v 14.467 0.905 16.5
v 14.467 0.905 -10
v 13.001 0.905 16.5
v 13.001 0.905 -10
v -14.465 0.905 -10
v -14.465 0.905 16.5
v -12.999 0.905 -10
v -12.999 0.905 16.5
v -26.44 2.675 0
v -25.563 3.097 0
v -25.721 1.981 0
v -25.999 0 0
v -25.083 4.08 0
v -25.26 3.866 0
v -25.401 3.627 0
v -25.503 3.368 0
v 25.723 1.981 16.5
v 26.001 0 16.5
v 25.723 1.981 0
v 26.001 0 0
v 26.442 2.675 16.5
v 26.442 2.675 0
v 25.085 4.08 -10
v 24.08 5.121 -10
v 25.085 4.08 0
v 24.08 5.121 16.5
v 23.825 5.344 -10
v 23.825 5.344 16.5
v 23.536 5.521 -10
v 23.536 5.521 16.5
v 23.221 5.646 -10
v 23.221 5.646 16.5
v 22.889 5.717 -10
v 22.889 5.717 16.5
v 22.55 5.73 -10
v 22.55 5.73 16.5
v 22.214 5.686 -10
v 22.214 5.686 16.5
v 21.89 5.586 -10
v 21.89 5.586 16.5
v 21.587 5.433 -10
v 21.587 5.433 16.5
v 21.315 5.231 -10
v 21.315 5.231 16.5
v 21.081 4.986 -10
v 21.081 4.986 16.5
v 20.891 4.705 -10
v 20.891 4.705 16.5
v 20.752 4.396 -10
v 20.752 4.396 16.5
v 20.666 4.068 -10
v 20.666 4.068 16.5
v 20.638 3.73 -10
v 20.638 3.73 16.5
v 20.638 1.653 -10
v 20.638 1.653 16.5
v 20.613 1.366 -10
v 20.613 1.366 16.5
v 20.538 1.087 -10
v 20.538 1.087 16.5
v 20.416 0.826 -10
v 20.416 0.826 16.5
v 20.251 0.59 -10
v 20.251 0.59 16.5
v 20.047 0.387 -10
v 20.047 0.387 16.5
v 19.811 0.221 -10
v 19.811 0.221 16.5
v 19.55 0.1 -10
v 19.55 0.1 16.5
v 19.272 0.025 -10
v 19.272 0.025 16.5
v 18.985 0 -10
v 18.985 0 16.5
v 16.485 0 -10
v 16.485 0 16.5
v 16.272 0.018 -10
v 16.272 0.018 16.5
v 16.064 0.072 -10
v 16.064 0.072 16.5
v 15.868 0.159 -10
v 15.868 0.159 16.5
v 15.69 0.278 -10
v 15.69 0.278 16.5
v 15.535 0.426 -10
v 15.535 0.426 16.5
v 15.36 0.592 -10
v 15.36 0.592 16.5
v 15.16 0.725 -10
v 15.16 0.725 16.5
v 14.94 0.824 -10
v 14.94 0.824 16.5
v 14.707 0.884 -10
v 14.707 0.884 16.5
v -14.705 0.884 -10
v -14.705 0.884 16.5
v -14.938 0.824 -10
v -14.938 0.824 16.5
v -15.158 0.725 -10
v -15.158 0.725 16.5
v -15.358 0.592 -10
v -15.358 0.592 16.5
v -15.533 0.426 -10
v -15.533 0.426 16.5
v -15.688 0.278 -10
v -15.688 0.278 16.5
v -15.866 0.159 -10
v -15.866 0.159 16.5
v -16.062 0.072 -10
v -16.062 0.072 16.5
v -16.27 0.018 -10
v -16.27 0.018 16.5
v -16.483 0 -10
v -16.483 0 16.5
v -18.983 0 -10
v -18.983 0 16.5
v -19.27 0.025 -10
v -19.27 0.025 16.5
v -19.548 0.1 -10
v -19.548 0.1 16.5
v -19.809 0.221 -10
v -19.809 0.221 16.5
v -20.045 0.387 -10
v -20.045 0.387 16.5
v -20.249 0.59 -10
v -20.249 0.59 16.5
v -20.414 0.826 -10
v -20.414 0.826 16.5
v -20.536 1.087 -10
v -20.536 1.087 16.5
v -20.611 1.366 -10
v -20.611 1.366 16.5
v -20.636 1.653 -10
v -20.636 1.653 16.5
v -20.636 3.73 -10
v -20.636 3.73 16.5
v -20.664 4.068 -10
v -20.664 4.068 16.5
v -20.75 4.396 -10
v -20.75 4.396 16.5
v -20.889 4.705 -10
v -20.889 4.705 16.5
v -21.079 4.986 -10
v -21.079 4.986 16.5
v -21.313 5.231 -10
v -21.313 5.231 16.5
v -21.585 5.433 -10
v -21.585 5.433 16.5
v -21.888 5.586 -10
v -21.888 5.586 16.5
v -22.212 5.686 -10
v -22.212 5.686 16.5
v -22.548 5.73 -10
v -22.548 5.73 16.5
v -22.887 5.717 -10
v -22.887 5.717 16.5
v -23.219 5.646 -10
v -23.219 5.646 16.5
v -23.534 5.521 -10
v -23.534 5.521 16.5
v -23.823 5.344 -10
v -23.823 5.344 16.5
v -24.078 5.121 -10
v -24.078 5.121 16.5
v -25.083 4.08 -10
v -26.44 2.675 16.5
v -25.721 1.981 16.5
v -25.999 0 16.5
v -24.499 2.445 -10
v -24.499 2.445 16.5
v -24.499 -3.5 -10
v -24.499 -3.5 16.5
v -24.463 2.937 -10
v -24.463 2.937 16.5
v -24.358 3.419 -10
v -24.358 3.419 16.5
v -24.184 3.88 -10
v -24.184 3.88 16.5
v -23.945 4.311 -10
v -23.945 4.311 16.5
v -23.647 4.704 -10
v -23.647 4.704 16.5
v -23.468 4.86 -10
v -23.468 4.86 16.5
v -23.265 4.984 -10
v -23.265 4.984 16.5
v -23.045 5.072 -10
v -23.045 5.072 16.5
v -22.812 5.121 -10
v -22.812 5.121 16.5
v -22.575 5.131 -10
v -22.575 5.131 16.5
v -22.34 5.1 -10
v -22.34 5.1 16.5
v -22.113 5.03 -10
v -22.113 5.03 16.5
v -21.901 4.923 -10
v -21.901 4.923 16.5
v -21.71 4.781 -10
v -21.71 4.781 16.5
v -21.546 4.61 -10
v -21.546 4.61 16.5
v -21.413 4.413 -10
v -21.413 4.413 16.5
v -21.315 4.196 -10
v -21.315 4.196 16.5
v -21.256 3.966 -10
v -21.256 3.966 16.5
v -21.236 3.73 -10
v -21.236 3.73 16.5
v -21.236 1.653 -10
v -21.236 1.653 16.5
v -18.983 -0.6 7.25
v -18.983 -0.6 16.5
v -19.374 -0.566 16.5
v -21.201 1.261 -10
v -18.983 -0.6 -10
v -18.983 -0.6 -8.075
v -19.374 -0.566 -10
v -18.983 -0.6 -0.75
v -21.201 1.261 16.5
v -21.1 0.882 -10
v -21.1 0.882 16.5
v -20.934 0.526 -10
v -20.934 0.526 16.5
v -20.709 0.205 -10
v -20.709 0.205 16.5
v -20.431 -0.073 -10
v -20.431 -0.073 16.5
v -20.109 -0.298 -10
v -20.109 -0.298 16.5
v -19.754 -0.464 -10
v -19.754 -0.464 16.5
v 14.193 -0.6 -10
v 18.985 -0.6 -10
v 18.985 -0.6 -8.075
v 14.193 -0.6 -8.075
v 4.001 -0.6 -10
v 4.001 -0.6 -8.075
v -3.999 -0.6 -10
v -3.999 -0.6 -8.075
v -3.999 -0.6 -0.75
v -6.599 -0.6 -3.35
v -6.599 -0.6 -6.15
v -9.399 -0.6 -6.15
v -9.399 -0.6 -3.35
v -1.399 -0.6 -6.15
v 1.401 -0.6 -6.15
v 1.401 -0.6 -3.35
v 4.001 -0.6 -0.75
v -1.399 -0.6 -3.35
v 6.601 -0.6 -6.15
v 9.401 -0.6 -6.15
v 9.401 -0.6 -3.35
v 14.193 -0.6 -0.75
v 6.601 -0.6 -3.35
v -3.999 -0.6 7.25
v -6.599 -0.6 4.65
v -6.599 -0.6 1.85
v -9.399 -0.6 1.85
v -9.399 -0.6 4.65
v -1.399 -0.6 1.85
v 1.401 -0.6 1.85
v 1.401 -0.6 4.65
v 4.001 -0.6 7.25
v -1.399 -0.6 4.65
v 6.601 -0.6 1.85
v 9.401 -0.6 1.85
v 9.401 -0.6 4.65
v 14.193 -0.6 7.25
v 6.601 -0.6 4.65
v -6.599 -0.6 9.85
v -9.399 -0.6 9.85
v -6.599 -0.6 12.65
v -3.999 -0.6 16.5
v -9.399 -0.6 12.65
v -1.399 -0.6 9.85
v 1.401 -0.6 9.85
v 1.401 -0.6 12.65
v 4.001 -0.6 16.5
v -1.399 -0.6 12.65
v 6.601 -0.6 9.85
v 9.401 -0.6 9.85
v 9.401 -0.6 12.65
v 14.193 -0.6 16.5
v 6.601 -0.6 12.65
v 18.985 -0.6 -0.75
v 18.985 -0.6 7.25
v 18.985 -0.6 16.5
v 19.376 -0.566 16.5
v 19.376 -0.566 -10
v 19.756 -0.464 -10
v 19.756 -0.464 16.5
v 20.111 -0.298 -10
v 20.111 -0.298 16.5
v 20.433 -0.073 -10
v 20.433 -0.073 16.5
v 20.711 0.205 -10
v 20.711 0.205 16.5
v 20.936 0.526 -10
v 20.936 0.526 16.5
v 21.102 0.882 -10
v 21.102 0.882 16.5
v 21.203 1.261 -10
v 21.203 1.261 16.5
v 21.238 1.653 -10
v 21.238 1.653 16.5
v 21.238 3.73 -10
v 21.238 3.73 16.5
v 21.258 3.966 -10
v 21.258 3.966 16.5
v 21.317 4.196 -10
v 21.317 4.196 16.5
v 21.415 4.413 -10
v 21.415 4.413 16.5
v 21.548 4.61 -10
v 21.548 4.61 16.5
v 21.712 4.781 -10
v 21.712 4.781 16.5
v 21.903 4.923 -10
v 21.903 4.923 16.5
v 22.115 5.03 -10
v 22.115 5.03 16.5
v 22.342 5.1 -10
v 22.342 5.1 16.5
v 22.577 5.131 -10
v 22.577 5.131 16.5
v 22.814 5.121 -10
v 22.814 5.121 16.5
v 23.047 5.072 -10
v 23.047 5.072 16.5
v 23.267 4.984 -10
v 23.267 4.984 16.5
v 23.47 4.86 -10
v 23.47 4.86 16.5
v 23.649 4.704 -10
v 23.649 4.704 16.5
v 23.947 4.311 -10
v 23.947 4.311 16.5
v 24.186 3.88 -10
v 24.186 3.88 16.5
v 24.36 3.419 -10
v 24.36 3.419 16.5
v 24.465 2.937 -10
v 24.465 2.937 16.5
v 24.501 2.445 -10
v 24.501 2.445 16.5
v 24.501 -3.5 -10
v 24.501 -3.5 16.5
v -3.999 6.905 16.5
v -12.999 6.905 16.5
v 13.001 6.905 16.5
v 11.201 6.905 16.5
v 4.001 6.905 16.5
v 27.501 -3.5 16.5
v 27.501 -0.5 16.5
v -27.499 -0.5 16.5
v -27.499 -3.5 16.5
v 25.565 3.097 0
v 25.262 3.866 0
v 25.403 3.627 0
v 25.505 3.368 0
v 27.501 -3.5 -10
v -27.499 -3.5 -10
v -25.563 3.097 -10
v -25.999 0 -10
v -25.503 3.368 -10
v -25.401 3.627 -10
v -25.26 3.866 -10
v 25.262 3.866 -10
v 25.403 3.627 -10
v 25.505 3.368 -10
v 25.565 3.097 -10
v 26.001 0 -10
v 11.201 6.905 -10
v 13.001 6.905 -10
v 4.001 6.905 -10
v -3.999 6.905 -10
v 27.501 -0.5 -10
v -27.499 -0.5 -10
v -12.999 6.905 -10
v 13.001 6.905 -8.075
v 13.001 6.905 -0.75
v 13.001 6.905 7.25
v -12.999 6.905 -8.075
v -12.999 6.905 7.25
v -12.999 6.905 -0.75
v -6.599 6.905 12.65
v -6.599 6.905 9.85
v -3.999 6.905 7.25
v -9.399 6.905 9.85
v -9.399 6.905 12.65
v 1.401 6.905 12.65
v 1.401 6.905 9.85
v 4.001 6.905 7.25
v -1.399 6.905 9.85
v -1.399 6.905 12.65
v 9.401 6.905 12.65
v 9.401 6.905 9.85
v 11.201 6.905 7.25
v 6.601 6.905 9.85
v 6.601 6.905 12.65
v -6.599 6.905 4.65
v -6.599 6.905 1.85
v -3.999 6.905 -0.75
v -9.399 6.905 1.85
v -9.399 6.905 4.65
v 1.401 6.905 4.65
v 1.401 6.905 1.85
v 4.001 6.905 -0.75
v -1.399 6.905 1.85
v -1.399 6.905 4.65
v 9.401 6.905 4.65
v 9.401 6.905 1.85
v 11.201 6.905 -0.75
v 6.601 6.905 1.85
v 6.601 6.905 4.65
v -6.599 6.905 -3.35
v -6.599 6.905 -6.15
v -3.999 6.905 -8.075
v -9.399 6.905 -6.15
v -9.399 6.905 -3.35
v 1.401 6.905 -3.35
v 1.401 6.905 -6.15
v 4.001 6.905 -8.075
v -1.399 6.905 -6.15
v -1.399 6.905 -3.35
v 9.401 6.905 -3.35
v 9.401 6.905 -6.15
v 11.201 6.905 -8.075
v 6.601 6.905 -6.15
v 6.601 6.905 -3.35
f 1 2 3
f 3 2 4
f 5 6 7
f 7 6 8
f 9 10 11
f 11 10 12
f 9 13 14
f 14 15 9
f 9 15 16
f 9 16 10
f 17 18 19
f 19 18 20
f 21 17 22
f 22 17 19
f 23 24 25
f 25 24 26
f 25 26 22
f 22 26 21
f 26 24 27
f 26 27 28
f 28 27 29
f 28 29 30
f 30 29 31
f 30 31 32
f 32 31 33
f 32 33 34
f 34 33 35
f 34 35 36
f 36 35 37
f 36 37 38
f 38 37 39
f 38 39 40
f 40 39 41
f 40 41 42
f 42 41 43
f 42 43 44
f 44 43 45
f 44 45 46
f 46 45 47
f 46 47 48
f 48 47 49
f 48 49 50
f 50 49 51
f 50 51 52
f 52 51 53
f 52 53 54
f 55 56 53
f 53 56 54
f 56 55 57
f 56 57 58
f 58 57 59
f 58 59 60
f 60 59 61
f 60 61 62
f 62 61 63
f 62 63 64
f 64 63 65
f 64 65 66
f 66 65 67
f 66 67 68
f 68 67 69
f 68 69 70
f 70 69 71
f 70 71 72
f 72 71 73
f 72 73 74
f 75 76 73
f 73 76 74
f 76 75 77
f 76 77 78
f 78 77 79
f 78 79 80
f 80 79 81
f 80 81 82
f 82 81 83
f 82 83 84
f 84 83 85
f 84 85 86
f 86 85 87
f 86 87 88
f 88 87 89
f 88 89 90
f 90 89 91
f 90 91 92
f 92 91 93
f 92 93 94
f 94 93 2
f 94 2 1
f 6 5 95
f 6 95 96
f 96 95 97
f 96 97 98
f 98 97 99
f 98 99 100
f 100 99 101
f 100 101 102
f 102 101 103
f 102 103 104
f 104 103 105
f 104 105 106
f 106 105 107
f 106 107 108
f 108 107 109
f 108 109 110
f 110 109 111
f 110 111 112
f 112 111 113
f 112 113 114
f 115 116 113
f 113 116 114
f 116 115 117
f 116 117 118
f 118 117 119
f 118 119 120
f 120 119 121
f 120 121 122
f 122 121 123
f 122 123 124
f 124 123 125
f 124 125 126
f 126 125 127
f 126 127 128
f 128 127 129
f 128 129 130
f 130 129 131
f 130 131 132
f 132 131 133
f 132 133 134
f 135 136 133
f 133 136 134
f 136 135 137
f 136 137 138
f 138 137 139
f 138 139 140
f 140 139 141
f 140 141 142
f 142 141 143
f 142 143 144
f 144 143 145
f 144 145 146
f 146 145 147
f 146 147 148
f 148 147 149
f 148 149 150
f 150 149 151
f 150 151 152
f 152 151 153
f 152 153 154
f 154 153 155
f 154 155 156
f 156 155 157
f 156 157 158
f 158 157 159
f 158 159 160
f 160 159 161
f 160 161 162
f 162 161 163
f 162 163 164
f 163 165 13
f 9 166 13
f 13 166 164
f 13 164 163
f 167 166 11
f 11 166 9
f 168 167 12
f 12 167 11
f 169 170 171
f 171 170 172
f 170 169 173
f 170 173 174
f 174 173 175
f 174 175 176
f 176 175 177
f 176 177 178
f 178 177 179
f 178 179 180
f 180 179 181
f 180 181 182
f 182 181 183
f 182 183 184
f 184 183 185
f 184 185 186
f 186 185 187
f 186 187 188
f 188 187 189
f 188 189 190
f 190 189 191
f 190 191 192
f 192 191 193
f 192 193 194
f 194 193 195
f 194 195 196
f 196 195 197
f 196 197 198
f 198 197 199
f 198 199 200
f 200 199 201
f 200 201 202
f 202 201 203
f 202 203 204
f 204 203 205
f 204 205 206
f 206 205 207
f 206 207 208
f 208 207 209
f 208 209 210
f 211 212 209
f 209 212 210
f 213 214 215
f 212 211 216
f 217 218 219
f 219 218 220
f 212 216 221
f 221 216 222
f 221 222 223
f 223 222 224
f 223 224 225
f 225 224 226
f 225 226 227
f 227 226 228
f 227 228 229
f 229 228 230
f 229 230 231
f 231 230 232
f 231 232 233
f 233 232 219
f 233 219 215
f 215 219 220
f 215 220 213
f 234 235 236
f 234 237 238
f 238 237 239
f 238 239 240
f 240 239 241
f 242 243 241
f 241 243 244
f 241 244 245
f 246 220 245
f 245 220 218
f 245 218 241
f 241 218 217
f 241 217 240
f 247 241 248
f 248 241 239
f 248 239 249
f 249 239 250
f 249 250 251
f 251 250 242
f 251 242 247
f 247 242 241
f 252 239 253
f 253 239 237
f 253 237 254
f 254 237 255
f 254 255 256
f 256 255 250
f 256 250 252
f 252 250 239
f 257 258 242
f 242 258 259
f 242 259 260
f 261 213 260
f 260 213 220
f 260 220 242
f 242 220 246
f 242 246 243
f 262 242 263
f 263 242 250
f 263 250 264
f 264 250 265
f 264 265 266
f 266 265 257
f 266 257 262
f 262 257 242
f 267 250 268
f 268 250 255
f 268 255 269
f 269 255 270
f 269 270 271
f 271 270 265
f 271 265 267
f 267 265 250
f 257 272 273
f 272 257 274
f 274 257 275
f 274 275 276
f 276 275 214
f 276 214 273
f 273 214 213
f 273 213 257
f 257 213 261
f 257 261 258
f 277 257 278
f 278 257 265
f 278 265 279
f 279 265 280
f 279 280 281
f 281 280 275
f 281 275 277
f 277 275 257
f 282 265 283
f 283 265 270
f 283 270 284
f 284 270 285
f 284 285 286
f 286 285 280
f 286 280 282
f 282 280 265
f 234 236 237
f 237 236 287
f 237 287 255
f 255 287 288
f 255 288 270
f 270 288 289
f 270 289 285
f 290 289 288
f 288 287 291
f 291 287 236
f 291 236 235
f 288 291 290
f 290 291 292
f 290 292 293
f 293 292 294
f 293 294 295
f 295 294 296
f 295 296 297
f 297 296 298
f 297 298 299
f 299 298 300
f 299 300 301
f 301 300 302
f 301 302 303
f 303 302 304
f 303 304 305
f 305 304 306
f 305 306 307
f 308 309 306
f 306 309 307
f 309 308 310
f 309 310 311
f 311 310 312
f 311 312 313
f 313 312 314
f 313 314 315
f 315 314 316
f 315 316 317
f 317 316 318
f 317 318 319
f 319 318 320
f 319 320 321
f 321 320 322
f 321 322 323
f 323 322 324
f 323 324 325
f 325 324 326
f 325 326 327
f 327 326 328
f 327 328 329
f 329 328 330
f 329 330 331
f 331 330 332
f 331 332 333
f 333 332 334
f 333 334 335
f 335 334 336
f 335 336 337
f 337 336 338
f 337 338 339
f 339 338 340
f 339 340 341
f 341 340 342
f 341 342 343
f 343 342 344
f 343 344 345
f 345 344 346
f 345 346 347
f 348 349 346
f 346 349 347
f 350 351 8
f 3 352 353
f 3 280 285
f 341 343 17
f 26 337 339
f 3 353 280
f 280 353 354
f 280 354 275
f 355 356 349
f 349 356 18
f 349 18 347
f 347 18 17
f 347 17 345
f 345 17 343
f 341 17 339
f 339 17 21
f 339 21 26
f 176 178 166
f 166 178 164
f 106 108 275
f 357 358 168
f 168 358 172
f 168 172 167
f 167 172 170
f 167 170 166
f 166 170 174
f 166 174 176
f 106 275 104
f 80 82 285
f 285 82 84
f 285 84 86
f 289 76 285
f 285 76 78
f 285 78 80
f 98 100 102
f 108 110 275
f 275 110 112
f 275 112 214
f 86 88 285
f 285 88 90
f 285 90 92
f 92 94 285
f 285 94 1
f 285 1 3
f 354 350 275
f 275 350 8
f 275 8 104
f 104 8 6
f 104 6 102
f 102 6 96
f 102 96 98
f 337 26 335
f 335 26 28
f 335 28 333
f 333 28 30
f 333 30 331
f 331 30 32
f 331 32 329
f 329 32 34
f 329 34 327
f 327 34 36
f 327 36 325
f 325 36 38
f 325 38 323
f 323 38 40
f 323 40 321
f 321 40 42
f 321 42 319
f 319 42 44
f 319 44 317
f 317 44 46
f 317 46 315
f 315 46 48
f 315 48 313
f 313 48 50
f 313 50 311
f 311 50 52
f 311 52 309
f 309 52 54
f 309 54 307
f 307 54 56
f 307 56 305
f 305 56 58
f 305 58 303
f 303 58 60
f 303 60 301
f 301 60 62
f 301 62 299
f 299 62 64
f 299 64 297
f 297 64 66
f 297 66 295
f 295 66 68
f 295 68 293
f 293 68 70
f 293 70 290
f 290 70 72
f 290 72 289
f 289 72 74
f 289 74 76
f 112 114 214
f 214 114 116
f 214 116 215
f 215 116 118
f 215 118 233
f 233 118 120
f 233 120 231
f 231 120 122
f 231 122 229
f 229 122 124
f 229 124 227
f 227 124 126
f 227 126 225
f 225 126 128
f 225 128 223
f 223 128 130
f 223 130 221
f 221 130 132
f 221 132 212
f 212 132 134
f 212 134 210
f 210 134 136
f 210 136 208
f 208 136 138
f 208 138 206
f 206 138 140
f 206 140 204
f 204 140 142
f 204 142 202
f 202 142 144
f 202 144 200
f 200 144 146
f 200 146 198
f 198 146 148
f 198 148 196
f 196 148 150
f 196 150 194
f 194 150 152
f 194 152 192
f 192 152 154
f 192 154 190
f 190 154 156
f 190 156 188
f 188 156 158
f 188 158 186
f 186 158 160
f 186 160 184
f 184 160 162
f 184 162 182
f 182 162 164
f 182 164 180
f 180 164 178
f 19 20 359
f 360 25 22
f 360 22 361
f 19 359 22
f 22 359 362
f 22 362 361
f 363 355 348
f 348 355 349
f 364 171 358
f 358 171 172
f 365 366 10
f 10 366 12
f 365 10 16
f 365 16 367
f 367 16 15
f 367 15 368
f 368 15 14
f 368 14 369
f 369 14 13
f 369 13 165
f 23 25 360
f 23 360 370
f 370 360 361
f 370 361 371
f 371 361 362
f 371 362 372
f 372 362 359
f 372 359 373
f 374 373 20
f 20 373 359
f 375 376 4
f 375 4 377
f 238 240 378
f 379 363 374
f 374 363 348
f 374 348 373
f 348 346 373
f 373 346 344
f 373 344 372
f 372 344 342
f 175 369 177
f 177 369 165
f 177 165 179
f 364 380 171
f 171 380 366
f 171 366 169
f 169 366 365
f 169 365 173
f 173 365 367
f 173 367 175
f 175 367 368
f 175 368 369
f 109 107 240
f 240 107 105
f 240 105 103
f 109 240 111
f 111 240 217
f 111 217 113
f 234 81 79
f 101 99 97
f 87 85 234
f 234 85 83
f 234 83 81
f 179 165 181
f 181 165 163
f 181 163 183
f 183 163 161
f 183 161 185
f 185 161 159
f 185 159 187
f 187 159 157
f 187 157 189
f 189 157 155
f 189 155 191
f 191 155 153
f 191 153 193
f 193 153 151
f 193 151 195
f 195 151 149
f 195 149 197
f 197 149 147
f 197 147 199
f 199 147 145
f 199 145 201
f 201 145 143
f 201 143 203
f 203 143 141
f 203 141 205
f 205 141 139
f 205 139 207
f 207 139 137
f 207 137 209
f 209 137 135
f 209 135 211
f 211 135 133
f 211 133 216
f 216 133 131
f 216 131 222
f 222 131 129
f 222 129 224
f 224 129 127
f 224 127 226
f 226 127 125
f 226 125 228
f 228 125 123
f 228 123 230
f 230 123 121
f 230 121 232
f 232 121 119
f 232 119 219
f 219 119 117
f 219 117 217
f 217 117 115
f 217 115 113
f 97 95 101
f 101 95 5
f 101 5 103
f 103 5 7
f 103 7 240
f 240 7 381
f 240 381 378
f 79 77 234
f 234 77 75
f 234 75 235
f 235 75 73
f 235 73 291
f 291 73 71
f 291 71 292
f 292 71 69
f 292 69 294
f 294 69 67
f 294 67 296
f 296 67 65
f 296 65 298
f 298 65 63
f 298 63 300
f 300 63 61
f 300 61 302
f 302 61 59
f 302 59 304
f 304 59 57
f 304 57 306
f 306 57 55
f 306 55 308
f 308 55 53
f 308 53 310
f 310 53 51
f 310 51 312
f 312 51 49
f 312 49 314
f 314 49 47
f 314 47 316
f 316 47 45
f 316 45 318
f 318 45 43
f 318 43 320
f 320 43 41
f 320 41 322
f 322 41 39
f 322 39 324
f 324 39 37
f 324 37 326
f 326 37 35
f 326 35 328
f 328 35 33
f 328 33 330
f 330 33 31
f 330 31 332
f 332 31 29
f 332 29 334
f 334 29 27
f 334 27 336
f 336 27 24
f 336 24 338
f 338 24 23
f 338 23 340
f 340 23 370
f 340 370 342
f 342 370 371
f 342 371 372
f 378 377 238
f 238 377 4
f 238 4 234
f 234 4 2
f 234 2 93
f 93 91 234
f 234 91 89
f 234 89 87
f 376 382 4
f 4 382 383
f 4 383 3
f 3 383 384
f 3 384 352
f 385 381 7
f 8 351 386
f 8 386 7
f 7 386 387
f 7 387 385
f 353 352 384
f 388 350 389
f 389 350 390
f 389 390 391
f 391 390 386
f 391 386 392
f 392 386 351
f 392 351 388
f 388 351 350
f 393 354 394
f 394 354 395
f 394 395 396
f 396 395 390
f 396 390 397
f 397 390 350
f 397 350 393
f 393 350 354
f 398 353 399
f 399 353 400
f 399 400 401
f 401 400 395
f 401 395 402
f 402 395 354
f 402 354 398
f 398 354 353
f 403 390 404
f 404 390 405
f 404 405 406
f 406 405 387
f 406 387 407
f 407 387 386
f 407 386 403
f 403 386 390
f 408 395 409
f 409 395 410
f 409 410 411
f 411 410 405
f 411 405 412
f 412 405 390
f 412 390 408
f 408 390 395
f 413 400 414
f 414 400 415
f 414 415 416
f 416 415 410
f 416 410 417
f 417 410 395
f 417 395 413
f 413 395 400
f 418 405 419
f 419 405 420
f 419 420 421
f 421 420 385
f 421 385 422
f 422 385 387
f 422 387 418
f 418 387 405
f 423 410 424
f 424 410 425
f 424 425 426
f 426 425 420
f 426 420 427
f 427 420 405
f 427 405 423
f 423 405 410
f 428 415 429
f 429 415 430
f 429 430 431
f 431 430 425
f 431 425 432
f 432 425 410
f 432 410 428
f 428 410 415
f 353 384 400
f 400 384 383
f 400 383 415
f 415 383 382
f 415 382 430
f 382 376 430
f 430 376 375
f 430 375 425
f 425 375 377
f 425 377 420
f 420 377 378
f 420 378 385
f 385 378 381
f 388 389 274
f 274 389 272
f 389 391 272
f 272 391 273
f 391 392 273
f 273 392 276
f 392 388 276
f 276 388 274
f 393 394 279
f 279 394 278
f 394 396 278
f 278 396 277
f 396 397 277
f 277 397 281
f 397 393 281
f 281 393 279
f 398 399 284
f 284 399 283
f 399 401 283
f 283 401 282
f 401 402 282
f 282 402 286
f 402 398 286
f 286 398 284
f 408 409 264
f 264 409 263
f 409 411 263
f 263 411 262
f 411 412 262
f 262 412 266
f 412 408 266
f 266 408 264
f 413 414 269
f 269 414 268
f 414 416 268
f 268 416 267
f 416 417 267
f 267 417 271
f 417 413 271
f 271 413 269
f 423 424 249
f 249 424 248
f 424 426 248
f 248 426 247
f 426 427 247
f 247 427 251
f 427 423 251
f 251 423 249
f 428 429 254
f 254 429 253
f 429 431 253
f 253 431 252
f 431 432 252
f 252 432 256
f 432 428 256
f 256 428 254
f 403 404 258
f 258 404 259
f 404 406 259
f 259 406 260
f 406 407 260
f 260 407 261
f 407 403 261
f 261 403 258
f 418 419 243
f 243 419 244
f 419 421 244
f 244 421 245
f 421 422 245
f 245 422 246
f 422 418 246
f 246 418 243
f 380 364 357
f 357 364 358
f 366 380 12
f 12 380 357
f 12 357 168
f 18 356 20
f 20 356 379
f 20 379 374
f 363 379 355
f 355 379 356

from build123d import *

# Parameters (mm, degrees)
RESSALTO_EXTRUS_O1_DEPTH = 16.5
ESBO_O4_W                = 1.5
ESBO_O4_H                = 16.5
RESSALTO_EXTRUS_O2_DEPTH = 2
RESSALTO_EXTRUS_O3_START = -10
RESSALTO_EXTRUS_O3_DEPTH = 10
ESBO_O5_W                = 26
ESBO_O5_H                = 26.5
RESSALTO_EXTRUS_O4_DEPTH = 6
ESBO_O6_W                = 2.8
ESBO_O6_H                = 2.8
CORTE_EXTRUS_O1_DEPTH    = 33.058488003
RESSALTO_EXTRUS_O5_DEPTH = 26.5


with BuildPart() as part:
    # Esboço3 → Ressalto-extrusão1 (new body)
    with BuildSketch(Plane.XY):
        with BuildLine():
            Line((18.985114218, -0.6), (-18.983112061, -0.6))
            ThreePointArc((-18.983112061, -0.6), (-20.575873515, 0.059743396), (-21.235616911, 1.65250485))
            Line((-21.235616911, 1.65250485), (-21.235616911, 3.729745078))
            ThreePointArc((-21.235616911, 3.729745078), (-22.112654073, 5.030006142), (-23.646779042, 4.703917814))
            ThreePointArc((-23.646779042, 4.703917814), (-24.278856787, 3.652335225), (-24.498998922, 2.44532004))
            Line((-24.498998922, 2.44532004), (-24.498998922, -1.5))
            Line((-24.498998922, -1.5), (-25.998998922, -1.5))
            Line((-25.998998922, -1.5), (-25.998998922, 0))
            Line((-25.998998922, 0), (-25.72065272, 1.980536137))
            Line((-25.72065272, 1.980536137), (-26.43999252, 2.675194508))
            Line((-26.43999252, 2.675194508), (-24.078382922, 5.120712836))
            ThreePointArc((-24.078382922, 5.120712836), (-21.887890117, 5.586316455), (-20.635616911, 3.729745078))
            Line((-20.635616911, 3.729745078), (-20.635616911, 1.65250485))
            ThreePointArc((-20.635616911, 1.65250485), (-20.151609446, 0.484007465), (-18.983112061, 0))
            Line((-18.983112061, 0), (-16.483112061, 0))
            ThreePointArc((-16.483112061, 0), (-15.962423979, 0.111330278), (-15.532789063, 0.425852691))
            ThreePointArc((-15.532789063, 0.425852691), (-15.049887248, 0.77937015), (-14.464643335, 0.904503352))
            Line((-14.464643335, 0.904503352), (-7.266260975, 0.904503352))
            Line((-7.266260975, 0.904503352), (7.268263132, 0.904503352))
            Line((7.268263132, 0.904503352), (14.466645491, 0.904503352))
            ThreePointArc((14.466645491, 0.904503352), (15.051889405, 0.77937015), (15.53479122, 0.425852691))
            ThreePointArc((15.53479122, 0.425852691), (15.964426136, 0.111330278), (16.485114218, 0))
            Line((16.485114218, 0), (18.985114218, 0))
            ThreePointArc((18.985114218, 0), (20.153611603, 0.484007465), (20.637619068, 1.65250485))
            Line((20.637619068, 1.65250485), (20.637619068, 3.729745078))
            ThreePointArc((20.637619068, 3.729745078), (21.889892273, 5.586316455), (24.080385079, 5.120712836))
            Line((24.080385079, 5.120712836), (26.441994677, 2.675194508))
            Line((26.441994677, 2.675194508), (25.722654876, 1.980536137))
            Line((25.722654876, 1.980536137), (26.001001078, 0))
            Line((26.001001078, 0), (26.001001078, -1.5))
            Line((26.001001078, -1.5), (24.501001078, -1.5))
            Line((24.501001078, -1.5), (24.501001078, 2.44532004))
            ThreePointArc((24.501001078, 2.44532004), (24.280858943, 3.652335225), (23.648781199, 4.703917814))
            ThreePointArc((23.648781199, 4.703917814), (22.11465623, 5.030006142), (21.237619068, 3.729745078))
            Line((21.237619068, 3.729745078), (21.237619068, 1.65250485))
            ThreePointArc((21.237619068, 1.65250485), (20.577875672, 0.059743396), (18.985114218, -0.6))
        make_face()
    extrude(amount=RESSALTO_EXTRUS_O1_DEPTH)

    # Esboço4 → Ressalto-extrusão2 (add)
    with BuildSketch(Plane.XZ.offset(1.5)):
        with Locations((25.251001078, 8.25)):
            Rectangle(ESBO_O4_W, ESBO_O4_H)
        with Locations((-25.248998922, 8.25)):
            Rectangle(ESBO_O4_W, ESBO_O4_H)
    extrude(amount=RESSALTO_EXTRUS_O2_DEPTH)

    # Esboço2 → Ressalto-extrusão3 (add)
    with BuildSketch(Plane.XY.offset(RESSALTO_EXTRUS_O3_START)):
        with BuildLine():
            Line((14.466645491, 0.904503352), (-14.464643335, 0.904503352))
            ThreePointArc((-14.464643335, 0.904503352), (-15.049887248, 0.77937015), (-15.532789063, 0.425852691))
            ThreePointArc((-15.532789063, 0.425852691), (-15.962423979, 0.111330278), (-16.483112061, 0))
            Line((-16.483112061, 0), (-18.983112061, 0))
            ThreePointArc((-18.983112061, 0), (-20.151609446, 0.484007465), (-20.635616911, 1.65250485))
            Line((-20.635616911, 1.65250485), (-20.635616911, 3.729745078))
            ThreePointArc((-20.635616911, 3.729745078), (-21.887890117, 5.586316455), (-24.078382922, 5.120712836))
            Line((-24.078382922, 5.120712836), (-25.082936671, 4.080466977))
            ThreePointArc((-25.082936671, 4.080466977), (-25.400658676, 3.626789441), (-25.562720122, 3.09716064))
            Line((-25.562720122, 3.09716064), (-25.998998922, 0))
            Line((-25.998998922, 0), (-25.998998922, -3.5))
            Line((-25.998998922, -3.5), (-24.498998922, -3.5))
            Line((-24.498998922, -3.5), (-24.498998922, 2.44532004))
            ThreePointArc((-24.498998922, 2.44532004), (-24.278856787, 3.652335225), (-23.646779042, 4.703917814))
            ThreePointArc((-23.646779042, 4.703917814), (-22.112654073, 5.030006142), (-21.235616911, 3.729745078))
            Line((-21.235616911, 3.729745078), (-21.235616911, 1.65250485))
            ThreePointArc((-21.235616911, 1.65250485), (-20.575873515, 0.059743396), (-18.983112061, -0.6))
            Line((-18.983112061, -0.6), (18.985114218, -0.6))
            ThreePointArc((18.985114218, -0.6), (20.577875672, 0.059743396), (21.237619068, 1.65250485))
            Line((21.237619068, 1.65250485), (21.237619068, 3.729745078))
            ThreePointArc((21.237619068, 3.729745078), (22.11465623, 5.030006142), (23.648781199, 4.703917814))
            ThreePointArc((23.648781199, 4.703917814), (24.280858943, 3.652335225), (24.501001078, 2.44532004))
            Line((24.501001078, 2.44532004), (24.501001078, -3.5))
            Line((24.501001078, -3.5), (26.001001078, -3.5))
            Line((26.001001078, -3.5), (26.001001078, 0))
            Line((26.001001078, 0), (25.564722279, 3.09716064))
            ThreePointArc((25.564722279, 3.09716064), (25.402660833, 3.626789441), (25.084938828, 4.080466977))
            Line((25.084938828, 4.080466977), (24.080385079, 5.120712836))
            ThreePointArc((24.080385079, 5.120712836), (21.889892273, 5.586316455), (20.637619068, 3.729745078))
            Line((20.637619068, 3.729745078), (20.637619068, 1.65250485))
            ThreePointArc((20.637619068, 1.65250485), (20.153611603, 0.484007465), (18.985114218, 0))
            Line((18.985114218, 0), (16.485114218, 0))
            ThreePointArc((16.485114218, 0), (15.964426136, 0.111330278), (15.53479122, 0.425852691))
            ThreePointArc((15.53479122, 0.425852691), (15.051889405, 0.77937015), (14.466645491, 0.904503352))
        make_face()
    extrude(amount=RESSALTO_EXTRUS_O3_DEPTH)

    # Esboço5 → Ressalto-extrusão4 (add)
    with BuildSketch(Plane(origin=(0, 0.904503352, 0), x_dir=(1, 0, 0), z_dir=(0, 1, 0))):
        with Locations((0.001001078, -3.25)):
            Rectangle(ESBO_O5_W, ESBO_O5_H)
    extrude(amount=RESSALTO_EXTRUS_O4_DEPTH)

    # Esboço6 → Corte-extrusão1 (cut, through all)
    with BuildSketch(Plane.XZ.offset(0.6)):
        with Locations((0.001001078, 11.25)):
            Rectangle(ESBO_O6_W, ESBO_O6_H)
        with Locations((-7.998998922, 11.25)):
            Rectangle(ESBO_O6_W, ESBO_O6_H)
        with Locations((8.001001078, 11.25)):
            Rectangle(ESBO_O6_W, ESBO_O6_H)
        with Locations((0.001001078, 3.25)):
            Rectangle(ESBO_O6_W, ESBO_O6_H)
        with Locations((8.001001078, 3.25)):
            Rectangle(ESBO_O6_W, ESBO_O6_H)
        with Locations((0.001001078, -4.75)):
            Rectangle(ESBO_O6_W, ESBO_O6_H)
        with Locations((8.001001078, -4.75)):
            Rectangle(ESBO_O6_W, ESBO_O6_H)
        with Locations((-7.998998922, 3.25)):
            Rectangle(ESBO_O6_W, ESBO_O6_H)
        with Locations((-7.998998922, -4.75)):
            Rectangle(ESBO_O6_W, ESBO_O6_H)
    extrude(amount=-CORTE_EXTRUS_O1_DEPTH, mode=Mode.SUBTRACT)

    # Esboço8 → Ressalto-extrusão5 (add, through all)
    with BuildSketch(Plane.XY.offset(16.5)):
        Polygon((-25.998998922, -3.5), (-27.498998922, -3.5), (-27.498998922, -0.5), (-25.998998922, 0), align=None)
        Polygon((26.001001078, 0), (26.001001078, -3.5), (27.501001078, -3.5), (27.501001078, -0.5), align=None)
    extrude(amount=-RESSALTO_EXTRUS_O5_DEPTH)


solid = part.part
